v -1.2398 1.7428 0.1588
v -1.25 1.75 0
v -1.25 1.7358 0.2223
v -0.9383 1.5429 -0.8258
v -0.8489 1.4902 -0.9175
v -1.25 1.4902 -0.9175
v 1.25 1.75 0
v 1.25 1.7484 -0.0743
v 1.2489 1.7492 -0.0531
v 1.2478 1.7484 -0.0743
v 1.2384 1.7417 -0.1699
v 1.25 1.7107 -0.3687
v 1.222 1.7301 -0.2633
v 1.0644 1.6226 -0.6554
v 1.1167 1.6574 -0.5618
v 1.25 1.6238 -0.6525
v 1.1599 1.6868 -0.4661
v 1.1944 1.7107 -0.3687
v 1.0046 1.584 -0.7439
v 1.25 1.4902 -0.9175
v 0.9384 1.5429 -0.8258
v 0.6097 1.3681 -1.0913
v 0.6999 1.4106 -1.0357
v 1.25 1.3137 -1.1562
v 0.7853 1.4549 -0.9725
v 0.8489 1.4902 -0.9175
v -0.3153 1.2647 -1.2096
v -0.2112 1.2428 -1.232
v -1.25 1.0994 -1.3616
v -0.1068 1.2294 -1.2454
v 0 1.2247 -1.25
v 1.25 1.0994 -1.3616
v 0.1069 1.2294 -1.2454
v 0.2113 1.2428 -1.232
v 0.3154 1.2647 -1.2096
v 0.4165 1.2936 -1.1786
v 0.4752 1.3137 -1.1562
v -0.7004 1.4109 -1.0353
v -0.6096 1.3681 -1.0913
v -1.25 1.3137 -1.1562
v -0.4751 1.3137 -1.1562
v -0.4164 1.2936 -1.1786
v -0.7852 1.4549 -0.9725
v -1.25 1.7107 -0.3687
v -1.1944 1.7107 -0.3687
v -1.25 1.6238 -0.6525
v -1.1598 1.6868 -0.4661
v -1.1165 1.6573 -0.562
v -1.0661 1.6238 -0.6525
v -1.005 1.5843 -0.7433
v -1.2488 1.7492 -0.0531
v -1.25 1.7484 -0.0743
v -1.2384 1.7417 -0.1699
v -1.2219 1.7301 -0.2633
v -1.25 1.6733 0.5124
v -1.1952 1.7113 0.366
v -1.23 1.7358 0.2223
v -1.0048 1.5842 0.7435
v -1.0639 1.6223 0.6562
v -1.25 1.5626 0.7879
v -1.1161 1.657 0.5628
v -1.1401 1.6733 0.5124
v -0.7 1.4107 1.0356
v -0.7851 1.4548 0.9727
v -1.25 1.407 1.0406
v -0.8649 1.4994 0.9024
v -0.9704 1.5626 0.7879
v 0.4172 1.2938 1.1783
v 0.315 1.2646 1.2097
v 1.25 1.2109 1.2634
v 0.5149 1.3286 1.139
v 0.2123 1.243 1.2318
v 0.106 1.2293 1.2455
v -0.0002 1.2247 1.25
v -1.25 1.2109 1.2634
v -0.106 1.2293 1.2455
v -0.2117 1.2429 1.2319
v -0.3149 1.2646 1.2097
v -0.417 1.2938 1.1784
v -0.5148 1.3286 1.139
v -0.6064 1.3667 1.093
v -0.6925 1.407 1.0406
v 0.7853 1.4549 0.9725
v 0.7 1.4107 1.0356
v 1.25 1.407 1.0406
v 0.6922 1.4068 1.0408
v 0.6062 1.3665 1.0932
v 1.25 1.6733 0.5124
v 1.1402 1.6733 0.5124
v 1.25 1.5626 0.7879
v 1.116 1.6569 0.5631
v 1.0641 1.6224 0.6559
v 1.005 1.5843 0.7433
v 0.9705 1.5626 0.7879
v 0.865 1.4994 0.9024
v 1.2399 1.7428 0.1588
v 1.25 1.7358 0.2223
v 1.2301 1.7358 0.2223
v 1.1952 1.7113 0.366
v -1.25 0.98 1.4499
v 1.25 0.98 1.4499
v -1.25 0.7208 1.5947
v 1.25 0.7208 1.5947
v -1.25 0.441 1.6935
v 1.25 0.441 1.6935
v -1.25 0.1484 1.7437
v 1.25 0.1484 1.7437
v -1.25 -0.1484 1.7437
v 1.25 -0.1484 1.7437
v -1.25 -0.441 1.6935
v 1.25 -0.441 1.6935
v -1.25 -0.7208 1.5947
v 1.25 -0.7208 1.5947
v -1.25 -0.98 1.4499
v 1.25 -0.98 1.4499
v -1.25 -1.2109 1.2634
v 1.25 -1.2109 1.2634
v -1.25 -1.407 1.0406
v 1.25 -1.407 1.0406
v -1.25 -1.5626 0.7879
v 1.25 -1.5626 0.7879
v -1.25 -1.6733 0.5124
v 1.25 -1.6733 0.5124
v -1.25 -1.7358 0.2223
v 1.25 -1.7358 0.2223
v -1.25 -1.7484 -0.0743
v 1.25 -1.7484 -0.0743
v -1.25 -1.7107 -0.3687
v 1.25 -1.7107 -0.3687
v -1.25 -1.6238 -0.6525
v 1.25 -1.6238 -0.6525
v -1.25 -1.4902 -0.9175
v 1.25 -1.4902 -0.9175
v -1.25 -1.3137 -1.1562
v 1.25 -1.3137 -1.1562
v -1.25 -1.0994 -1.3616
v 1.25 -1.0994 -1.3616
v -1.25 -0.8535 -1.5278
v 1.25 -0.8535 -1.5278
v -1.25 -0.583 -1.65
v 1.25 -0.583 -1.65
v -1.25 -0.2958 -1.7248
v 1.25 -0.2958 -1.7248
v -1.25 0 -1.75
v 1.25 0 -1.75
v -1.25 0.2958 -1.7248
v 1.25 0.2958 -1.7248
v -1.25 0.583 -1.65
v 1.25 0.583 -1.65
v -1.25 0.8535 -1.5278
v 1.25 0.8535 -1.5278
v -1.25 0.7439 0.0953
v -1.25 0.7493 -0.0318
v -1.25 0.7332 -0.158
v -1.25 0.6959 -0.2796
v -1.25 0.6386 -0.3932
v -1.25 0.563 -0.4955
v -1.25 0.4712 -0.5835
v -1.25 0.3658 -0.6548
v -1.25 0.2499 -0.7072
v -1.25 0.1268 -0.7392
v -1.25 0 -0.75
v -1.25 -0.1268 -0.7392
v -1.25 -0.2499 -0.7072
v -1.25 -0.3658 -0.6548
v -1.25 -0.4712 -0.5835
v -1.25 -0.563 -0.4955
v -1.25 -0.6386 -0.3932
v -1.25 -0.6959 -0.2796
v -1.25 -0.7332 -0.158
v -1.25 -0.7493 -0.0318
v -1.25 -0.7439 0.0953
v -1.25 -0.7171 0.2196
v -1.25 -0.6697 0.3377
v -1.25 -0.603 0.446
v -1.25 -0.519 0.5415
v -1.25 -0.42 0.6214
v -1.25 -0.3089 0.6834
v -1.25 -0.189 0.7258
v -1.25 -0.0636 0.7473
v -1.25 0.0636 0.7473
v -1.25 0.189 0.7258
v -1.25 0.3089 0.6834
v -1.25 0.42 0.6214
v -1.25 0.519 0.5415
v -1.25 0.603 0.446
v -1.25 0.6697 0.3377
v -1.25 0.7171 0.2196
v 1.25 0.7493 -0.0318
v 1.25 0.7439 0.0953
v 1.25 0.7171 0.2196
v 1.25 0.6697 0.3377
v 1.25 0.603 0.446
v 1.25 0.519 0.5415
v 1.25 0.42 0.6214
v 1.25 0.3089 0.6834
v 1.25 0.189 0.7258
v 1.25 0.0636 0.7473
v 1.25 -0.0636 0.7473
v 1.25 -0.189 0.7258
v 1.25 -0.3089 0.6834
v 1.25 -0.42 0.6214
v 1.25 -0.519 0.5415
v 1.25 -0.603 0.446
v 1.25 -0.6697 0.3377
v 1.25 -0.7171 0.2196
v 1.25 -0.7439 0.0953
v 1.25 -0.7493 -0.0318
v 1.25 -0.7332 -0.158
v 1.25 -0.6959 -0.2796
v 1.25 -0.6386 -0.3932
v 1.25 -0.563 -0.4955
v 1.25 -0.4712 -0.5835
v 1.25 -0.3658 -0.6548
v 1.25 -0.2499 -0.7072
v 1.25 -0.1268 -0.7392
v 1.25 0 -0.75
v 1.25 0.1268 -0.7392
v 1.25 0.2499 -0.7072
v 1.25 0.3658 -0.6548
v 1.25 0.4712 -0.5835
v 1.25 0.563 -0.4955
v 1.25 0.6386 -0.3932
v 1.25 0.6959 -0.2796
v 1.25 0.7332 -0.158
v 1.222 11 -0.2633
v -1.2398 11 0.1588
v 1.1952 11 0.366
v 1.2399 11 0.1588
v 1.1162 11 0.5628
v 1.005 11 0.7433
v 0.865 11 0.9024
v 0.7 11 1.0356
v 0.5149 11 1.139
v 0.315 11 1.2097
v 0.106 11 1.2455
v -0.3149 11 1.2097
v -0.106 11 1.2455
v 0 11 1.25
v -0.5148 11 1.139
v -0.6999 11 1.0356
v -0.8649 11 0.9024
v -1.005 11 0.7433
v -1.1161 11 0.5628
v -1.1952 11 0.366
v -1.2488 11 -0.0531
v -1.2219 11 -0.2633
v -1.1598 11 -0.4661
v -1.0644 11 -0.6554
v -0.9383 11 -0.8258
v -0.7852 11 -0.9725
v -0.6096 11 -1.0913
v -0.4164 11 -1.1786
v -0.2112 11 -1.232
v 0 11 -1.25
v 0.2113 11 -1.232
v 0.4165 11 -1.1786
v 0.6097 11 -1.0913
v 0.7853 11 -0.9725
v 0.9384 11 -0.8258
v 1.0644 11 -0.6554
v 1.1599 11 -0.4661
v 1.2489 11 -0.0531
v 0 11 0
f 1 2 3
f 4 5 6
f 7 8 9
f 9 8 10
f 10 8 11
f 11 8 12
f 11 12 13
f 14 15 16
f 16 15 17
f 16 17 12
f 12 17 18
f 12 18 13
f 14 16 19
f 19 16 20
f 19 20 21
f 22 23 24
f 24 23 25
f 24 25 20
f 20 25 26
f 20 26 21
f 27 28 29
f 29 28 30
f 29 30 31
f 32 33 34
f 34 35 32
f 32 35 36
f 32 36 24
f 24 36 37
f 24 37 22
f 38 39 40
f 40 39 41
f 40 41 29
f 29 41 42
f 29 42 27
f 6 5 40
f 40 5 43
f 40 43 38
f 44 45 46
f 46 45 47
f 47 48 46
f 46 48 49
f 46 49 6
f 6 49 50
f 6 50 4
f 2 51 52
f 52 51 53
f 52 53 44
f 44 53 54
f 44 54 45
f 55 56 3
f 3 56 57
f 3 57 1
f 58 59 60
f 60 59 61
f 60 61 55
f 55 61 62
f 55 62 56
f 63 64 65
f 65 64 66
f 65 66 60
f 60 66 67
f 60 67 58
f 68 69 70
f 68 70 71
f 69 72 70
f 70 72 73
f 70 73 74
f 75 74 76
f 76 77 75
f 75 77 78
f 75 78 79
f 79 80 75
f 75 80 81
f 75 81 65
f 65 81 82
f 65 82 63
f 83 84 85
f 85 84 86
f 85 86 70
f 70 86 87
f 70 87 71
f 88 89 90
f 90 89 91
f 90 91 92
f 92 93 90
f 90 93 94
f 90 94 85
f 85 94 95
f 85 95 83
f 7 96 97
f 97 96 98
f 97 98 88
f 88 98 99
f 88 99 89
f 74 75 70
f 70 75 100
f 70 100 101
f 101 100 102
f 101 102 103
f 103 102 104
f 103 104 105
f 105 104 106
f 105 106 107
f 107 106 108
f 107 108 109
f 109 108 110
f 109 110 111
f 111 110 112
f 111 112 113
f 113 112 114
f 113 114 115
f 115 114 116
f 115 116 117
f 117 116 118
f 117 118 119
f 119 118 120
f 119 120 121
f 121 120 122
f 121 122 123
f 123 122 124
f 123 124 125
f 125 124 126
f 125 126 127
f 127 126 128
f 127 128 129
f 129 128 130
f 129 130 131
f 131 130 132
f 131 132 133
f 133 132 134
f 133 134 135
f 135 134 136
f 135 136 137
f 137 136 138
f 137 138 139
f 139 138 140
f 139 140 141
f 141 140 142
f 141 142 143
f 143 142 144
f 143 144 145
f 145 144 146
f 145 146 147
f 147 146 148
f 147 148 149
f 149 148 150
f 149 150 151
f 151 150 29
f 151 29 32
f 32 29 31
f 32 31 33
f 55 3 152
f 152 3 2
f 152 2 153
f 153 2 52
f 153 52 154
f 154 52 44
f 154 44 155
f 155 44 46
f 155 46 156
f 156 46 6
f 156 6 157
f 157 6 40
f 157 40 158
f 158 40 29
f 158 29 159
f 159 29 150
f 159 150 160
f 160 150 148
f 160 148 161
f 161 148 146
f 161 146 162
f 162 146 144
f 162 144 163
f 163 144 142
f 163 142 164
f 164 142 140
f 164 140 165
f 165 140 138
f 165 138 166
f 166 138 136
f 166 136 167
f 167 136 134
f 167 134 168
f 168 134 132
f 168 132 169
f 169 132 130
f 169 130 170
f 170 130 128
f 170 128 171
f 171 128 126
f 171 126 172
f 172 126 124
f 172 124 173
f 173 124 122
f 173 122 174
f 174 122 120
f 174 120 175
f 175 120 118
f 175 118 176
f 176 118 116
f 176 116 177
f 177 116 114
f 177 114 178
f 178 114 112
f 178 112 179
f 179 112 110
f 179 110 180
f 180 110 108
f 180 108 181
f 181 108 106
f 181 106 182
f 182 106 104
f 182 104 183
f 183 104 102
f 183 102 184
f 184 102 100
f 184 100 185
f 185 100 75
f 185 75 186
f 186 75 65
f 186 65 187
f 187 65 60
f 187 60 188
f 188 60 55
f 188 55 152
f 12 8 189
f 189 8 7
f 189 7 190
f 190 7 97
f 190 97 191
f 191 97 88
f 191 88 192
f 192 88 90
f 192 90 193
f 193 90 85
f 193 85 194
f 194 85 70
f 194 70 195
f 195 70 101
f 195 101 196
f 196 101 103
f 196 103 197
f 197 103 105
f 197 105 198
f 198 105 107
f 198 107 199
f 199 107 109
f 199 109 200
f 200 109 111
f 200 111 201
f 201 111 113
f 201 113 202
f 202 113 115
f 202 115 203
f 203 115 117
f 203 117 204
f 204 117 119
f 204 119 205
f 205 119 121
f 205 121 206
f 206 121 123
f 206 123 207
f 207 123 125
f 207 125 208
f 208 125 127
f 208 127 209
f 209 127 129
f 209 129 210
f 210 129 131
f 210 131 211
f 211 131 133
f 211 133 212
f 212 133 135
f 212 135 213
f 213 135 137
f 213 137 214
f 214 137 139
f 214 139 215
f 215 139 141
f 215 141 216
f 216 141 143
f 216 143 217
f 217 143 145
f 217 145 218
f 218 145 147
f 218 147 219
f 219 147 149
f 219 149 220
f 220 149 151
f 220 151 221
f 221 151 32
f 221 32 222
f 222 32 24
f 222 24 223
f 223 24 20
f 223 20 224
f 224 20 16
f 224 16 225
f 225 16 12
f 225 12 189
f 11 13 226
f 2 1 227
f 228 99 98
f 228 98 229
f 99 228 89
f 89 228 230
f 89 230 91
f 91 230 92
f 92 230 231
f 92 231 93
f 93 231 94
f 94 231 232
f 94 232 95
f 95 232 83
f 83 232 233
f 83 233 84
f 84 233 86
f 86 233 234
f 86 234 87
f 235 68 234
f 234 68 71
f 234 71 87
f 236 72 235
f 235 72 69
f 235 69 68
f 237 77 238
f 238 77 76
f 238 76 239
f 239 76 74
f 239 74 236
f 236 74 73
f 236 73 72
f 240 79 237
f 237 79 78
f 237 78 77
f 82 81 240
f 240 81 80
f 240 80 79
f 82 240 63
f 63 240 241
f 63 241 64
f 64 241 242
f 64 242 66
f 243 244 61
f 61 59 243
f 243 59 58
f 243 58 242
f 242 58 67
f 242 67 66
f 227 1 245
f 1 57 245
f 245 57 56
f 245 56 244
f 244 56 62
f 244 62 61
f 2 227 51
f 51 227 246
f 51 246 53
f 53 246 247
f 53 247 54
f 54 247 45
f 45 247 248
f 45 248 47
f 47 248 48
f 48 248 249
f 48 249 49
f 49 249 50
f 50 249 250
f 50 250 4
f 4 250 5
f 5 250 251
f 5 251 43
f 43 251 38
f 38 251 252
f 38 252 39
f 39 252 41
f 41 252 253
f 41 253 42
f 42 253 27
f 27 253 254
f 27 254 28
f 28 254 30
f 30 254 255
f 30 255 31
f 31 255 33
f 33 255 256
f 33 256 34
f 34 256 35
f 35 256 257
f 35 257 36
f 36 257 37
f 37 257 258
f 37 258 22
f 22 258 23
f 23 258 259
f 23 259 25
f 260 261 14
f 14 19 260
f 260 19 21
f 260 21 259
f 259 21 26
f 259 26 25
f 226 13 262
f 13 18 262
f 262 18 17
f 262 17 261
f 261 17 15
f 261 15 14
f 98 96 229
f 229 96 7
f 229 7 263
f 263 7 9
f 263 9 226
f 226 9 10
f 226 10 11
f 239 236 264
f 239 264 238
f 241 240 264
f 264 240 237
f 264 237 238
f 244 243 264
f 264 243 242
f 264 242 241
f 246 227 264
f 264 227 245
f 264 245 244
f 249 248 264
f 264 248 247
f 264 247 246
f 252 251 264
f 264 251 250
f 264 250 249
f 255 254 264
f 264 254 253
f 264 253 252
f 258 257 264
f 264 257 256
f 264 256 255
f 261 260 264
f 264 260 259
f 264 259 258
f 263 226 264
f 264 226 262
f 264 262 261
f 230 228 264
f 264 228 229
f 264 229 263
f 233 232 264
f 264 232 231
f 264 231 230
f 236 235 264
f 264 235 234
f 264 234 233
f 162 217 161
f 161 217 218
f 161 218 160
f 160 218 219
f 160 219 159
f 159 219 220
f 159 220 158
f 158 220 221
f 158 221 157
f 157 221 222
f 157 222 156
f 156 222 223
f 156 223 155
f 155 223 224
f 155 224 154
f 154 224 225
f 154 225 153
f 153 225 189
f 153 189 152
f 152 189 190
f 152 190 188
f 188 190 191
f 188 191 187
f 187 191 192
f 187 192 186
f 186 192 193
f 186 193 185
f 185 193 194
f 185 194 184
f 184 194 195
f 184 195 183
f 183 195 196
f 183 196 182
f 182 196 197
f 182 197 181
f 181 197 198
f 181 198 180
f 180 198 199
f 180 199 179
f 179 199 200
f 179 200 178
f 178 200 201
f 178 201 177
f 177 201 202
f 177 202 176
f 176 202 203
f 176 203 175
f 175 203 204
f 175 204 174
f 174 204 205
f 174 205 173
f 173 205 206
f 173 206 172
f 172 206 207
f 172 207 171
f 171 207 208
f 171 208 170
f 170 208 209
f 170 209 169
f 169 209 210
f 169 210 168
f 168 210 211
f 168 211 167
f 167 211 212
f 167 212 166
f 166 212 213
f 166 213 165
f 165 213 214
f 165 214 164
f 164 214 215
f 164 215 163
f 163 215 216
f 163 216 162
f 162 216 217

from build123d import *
from build123d.topology import SkipClean

# Parameters (mm, degrees)
SKETCH1_R                = 1.25
BOSS_EXTRUDE1_DEPTH      = 11
BOSS_EXTRUDE2_DEPTH      = 1.25
BOSS_EXTRUDE2_DEPTH_BACK = 1.25
SKETCH2_R                = 1.75
SKETCH3_R                = 0.75
CUT_EXTRUDE2_DEPTH       = 3


with BuildPart() as part:
    # Sketch1 → Boss-Extrude1 (new body)
    with BuildSketch(Plane(origin=(0, 0, 0), x_dir=(1, 0, 0), z_dir=(0, 1, 0))):
        Circle(SKETCH1_R)
    extrude(amount=BOSS_EXTRUDE1_DEPTH)

    # Sketch2 → Boss-Extrude2 (add, two sides: drawn at the far end of the back side and taken through both)
    with SkipClean():  # the faces are left unmerged after this step: merging them gives an invalid solid
        with BuildSketch(Plane(origin=(0, 0, 0), x_dir=(0, 0, -1), z_dir=(1, 0, 0)).offset(-BOSS_EXTRUDE2_DEPTH_BACK)):
            Circle(SKETCH2_R)
        extrude(amount=BOSS_EXTRUDE2_DEPTH + BOSS_EXTRUDE2_DEPTH_BACK)

    # Sketch3 → Cut-Extrude2 (cut)
    with SkipClean():  # the faces are left unmerged after this step: merging them gives an invalid solid
        with BuildSketch(Plane(origin=(1.25, 0, 0), x_dir=(0, 0, -1), z_dir=(1, 0, 0))):
            Circle(SKETCH3_R)
        extrude(amount=-CUT_EXTRUDE2_DEPTH, mode=Mode.SUBTRACT)


solid = part.part
